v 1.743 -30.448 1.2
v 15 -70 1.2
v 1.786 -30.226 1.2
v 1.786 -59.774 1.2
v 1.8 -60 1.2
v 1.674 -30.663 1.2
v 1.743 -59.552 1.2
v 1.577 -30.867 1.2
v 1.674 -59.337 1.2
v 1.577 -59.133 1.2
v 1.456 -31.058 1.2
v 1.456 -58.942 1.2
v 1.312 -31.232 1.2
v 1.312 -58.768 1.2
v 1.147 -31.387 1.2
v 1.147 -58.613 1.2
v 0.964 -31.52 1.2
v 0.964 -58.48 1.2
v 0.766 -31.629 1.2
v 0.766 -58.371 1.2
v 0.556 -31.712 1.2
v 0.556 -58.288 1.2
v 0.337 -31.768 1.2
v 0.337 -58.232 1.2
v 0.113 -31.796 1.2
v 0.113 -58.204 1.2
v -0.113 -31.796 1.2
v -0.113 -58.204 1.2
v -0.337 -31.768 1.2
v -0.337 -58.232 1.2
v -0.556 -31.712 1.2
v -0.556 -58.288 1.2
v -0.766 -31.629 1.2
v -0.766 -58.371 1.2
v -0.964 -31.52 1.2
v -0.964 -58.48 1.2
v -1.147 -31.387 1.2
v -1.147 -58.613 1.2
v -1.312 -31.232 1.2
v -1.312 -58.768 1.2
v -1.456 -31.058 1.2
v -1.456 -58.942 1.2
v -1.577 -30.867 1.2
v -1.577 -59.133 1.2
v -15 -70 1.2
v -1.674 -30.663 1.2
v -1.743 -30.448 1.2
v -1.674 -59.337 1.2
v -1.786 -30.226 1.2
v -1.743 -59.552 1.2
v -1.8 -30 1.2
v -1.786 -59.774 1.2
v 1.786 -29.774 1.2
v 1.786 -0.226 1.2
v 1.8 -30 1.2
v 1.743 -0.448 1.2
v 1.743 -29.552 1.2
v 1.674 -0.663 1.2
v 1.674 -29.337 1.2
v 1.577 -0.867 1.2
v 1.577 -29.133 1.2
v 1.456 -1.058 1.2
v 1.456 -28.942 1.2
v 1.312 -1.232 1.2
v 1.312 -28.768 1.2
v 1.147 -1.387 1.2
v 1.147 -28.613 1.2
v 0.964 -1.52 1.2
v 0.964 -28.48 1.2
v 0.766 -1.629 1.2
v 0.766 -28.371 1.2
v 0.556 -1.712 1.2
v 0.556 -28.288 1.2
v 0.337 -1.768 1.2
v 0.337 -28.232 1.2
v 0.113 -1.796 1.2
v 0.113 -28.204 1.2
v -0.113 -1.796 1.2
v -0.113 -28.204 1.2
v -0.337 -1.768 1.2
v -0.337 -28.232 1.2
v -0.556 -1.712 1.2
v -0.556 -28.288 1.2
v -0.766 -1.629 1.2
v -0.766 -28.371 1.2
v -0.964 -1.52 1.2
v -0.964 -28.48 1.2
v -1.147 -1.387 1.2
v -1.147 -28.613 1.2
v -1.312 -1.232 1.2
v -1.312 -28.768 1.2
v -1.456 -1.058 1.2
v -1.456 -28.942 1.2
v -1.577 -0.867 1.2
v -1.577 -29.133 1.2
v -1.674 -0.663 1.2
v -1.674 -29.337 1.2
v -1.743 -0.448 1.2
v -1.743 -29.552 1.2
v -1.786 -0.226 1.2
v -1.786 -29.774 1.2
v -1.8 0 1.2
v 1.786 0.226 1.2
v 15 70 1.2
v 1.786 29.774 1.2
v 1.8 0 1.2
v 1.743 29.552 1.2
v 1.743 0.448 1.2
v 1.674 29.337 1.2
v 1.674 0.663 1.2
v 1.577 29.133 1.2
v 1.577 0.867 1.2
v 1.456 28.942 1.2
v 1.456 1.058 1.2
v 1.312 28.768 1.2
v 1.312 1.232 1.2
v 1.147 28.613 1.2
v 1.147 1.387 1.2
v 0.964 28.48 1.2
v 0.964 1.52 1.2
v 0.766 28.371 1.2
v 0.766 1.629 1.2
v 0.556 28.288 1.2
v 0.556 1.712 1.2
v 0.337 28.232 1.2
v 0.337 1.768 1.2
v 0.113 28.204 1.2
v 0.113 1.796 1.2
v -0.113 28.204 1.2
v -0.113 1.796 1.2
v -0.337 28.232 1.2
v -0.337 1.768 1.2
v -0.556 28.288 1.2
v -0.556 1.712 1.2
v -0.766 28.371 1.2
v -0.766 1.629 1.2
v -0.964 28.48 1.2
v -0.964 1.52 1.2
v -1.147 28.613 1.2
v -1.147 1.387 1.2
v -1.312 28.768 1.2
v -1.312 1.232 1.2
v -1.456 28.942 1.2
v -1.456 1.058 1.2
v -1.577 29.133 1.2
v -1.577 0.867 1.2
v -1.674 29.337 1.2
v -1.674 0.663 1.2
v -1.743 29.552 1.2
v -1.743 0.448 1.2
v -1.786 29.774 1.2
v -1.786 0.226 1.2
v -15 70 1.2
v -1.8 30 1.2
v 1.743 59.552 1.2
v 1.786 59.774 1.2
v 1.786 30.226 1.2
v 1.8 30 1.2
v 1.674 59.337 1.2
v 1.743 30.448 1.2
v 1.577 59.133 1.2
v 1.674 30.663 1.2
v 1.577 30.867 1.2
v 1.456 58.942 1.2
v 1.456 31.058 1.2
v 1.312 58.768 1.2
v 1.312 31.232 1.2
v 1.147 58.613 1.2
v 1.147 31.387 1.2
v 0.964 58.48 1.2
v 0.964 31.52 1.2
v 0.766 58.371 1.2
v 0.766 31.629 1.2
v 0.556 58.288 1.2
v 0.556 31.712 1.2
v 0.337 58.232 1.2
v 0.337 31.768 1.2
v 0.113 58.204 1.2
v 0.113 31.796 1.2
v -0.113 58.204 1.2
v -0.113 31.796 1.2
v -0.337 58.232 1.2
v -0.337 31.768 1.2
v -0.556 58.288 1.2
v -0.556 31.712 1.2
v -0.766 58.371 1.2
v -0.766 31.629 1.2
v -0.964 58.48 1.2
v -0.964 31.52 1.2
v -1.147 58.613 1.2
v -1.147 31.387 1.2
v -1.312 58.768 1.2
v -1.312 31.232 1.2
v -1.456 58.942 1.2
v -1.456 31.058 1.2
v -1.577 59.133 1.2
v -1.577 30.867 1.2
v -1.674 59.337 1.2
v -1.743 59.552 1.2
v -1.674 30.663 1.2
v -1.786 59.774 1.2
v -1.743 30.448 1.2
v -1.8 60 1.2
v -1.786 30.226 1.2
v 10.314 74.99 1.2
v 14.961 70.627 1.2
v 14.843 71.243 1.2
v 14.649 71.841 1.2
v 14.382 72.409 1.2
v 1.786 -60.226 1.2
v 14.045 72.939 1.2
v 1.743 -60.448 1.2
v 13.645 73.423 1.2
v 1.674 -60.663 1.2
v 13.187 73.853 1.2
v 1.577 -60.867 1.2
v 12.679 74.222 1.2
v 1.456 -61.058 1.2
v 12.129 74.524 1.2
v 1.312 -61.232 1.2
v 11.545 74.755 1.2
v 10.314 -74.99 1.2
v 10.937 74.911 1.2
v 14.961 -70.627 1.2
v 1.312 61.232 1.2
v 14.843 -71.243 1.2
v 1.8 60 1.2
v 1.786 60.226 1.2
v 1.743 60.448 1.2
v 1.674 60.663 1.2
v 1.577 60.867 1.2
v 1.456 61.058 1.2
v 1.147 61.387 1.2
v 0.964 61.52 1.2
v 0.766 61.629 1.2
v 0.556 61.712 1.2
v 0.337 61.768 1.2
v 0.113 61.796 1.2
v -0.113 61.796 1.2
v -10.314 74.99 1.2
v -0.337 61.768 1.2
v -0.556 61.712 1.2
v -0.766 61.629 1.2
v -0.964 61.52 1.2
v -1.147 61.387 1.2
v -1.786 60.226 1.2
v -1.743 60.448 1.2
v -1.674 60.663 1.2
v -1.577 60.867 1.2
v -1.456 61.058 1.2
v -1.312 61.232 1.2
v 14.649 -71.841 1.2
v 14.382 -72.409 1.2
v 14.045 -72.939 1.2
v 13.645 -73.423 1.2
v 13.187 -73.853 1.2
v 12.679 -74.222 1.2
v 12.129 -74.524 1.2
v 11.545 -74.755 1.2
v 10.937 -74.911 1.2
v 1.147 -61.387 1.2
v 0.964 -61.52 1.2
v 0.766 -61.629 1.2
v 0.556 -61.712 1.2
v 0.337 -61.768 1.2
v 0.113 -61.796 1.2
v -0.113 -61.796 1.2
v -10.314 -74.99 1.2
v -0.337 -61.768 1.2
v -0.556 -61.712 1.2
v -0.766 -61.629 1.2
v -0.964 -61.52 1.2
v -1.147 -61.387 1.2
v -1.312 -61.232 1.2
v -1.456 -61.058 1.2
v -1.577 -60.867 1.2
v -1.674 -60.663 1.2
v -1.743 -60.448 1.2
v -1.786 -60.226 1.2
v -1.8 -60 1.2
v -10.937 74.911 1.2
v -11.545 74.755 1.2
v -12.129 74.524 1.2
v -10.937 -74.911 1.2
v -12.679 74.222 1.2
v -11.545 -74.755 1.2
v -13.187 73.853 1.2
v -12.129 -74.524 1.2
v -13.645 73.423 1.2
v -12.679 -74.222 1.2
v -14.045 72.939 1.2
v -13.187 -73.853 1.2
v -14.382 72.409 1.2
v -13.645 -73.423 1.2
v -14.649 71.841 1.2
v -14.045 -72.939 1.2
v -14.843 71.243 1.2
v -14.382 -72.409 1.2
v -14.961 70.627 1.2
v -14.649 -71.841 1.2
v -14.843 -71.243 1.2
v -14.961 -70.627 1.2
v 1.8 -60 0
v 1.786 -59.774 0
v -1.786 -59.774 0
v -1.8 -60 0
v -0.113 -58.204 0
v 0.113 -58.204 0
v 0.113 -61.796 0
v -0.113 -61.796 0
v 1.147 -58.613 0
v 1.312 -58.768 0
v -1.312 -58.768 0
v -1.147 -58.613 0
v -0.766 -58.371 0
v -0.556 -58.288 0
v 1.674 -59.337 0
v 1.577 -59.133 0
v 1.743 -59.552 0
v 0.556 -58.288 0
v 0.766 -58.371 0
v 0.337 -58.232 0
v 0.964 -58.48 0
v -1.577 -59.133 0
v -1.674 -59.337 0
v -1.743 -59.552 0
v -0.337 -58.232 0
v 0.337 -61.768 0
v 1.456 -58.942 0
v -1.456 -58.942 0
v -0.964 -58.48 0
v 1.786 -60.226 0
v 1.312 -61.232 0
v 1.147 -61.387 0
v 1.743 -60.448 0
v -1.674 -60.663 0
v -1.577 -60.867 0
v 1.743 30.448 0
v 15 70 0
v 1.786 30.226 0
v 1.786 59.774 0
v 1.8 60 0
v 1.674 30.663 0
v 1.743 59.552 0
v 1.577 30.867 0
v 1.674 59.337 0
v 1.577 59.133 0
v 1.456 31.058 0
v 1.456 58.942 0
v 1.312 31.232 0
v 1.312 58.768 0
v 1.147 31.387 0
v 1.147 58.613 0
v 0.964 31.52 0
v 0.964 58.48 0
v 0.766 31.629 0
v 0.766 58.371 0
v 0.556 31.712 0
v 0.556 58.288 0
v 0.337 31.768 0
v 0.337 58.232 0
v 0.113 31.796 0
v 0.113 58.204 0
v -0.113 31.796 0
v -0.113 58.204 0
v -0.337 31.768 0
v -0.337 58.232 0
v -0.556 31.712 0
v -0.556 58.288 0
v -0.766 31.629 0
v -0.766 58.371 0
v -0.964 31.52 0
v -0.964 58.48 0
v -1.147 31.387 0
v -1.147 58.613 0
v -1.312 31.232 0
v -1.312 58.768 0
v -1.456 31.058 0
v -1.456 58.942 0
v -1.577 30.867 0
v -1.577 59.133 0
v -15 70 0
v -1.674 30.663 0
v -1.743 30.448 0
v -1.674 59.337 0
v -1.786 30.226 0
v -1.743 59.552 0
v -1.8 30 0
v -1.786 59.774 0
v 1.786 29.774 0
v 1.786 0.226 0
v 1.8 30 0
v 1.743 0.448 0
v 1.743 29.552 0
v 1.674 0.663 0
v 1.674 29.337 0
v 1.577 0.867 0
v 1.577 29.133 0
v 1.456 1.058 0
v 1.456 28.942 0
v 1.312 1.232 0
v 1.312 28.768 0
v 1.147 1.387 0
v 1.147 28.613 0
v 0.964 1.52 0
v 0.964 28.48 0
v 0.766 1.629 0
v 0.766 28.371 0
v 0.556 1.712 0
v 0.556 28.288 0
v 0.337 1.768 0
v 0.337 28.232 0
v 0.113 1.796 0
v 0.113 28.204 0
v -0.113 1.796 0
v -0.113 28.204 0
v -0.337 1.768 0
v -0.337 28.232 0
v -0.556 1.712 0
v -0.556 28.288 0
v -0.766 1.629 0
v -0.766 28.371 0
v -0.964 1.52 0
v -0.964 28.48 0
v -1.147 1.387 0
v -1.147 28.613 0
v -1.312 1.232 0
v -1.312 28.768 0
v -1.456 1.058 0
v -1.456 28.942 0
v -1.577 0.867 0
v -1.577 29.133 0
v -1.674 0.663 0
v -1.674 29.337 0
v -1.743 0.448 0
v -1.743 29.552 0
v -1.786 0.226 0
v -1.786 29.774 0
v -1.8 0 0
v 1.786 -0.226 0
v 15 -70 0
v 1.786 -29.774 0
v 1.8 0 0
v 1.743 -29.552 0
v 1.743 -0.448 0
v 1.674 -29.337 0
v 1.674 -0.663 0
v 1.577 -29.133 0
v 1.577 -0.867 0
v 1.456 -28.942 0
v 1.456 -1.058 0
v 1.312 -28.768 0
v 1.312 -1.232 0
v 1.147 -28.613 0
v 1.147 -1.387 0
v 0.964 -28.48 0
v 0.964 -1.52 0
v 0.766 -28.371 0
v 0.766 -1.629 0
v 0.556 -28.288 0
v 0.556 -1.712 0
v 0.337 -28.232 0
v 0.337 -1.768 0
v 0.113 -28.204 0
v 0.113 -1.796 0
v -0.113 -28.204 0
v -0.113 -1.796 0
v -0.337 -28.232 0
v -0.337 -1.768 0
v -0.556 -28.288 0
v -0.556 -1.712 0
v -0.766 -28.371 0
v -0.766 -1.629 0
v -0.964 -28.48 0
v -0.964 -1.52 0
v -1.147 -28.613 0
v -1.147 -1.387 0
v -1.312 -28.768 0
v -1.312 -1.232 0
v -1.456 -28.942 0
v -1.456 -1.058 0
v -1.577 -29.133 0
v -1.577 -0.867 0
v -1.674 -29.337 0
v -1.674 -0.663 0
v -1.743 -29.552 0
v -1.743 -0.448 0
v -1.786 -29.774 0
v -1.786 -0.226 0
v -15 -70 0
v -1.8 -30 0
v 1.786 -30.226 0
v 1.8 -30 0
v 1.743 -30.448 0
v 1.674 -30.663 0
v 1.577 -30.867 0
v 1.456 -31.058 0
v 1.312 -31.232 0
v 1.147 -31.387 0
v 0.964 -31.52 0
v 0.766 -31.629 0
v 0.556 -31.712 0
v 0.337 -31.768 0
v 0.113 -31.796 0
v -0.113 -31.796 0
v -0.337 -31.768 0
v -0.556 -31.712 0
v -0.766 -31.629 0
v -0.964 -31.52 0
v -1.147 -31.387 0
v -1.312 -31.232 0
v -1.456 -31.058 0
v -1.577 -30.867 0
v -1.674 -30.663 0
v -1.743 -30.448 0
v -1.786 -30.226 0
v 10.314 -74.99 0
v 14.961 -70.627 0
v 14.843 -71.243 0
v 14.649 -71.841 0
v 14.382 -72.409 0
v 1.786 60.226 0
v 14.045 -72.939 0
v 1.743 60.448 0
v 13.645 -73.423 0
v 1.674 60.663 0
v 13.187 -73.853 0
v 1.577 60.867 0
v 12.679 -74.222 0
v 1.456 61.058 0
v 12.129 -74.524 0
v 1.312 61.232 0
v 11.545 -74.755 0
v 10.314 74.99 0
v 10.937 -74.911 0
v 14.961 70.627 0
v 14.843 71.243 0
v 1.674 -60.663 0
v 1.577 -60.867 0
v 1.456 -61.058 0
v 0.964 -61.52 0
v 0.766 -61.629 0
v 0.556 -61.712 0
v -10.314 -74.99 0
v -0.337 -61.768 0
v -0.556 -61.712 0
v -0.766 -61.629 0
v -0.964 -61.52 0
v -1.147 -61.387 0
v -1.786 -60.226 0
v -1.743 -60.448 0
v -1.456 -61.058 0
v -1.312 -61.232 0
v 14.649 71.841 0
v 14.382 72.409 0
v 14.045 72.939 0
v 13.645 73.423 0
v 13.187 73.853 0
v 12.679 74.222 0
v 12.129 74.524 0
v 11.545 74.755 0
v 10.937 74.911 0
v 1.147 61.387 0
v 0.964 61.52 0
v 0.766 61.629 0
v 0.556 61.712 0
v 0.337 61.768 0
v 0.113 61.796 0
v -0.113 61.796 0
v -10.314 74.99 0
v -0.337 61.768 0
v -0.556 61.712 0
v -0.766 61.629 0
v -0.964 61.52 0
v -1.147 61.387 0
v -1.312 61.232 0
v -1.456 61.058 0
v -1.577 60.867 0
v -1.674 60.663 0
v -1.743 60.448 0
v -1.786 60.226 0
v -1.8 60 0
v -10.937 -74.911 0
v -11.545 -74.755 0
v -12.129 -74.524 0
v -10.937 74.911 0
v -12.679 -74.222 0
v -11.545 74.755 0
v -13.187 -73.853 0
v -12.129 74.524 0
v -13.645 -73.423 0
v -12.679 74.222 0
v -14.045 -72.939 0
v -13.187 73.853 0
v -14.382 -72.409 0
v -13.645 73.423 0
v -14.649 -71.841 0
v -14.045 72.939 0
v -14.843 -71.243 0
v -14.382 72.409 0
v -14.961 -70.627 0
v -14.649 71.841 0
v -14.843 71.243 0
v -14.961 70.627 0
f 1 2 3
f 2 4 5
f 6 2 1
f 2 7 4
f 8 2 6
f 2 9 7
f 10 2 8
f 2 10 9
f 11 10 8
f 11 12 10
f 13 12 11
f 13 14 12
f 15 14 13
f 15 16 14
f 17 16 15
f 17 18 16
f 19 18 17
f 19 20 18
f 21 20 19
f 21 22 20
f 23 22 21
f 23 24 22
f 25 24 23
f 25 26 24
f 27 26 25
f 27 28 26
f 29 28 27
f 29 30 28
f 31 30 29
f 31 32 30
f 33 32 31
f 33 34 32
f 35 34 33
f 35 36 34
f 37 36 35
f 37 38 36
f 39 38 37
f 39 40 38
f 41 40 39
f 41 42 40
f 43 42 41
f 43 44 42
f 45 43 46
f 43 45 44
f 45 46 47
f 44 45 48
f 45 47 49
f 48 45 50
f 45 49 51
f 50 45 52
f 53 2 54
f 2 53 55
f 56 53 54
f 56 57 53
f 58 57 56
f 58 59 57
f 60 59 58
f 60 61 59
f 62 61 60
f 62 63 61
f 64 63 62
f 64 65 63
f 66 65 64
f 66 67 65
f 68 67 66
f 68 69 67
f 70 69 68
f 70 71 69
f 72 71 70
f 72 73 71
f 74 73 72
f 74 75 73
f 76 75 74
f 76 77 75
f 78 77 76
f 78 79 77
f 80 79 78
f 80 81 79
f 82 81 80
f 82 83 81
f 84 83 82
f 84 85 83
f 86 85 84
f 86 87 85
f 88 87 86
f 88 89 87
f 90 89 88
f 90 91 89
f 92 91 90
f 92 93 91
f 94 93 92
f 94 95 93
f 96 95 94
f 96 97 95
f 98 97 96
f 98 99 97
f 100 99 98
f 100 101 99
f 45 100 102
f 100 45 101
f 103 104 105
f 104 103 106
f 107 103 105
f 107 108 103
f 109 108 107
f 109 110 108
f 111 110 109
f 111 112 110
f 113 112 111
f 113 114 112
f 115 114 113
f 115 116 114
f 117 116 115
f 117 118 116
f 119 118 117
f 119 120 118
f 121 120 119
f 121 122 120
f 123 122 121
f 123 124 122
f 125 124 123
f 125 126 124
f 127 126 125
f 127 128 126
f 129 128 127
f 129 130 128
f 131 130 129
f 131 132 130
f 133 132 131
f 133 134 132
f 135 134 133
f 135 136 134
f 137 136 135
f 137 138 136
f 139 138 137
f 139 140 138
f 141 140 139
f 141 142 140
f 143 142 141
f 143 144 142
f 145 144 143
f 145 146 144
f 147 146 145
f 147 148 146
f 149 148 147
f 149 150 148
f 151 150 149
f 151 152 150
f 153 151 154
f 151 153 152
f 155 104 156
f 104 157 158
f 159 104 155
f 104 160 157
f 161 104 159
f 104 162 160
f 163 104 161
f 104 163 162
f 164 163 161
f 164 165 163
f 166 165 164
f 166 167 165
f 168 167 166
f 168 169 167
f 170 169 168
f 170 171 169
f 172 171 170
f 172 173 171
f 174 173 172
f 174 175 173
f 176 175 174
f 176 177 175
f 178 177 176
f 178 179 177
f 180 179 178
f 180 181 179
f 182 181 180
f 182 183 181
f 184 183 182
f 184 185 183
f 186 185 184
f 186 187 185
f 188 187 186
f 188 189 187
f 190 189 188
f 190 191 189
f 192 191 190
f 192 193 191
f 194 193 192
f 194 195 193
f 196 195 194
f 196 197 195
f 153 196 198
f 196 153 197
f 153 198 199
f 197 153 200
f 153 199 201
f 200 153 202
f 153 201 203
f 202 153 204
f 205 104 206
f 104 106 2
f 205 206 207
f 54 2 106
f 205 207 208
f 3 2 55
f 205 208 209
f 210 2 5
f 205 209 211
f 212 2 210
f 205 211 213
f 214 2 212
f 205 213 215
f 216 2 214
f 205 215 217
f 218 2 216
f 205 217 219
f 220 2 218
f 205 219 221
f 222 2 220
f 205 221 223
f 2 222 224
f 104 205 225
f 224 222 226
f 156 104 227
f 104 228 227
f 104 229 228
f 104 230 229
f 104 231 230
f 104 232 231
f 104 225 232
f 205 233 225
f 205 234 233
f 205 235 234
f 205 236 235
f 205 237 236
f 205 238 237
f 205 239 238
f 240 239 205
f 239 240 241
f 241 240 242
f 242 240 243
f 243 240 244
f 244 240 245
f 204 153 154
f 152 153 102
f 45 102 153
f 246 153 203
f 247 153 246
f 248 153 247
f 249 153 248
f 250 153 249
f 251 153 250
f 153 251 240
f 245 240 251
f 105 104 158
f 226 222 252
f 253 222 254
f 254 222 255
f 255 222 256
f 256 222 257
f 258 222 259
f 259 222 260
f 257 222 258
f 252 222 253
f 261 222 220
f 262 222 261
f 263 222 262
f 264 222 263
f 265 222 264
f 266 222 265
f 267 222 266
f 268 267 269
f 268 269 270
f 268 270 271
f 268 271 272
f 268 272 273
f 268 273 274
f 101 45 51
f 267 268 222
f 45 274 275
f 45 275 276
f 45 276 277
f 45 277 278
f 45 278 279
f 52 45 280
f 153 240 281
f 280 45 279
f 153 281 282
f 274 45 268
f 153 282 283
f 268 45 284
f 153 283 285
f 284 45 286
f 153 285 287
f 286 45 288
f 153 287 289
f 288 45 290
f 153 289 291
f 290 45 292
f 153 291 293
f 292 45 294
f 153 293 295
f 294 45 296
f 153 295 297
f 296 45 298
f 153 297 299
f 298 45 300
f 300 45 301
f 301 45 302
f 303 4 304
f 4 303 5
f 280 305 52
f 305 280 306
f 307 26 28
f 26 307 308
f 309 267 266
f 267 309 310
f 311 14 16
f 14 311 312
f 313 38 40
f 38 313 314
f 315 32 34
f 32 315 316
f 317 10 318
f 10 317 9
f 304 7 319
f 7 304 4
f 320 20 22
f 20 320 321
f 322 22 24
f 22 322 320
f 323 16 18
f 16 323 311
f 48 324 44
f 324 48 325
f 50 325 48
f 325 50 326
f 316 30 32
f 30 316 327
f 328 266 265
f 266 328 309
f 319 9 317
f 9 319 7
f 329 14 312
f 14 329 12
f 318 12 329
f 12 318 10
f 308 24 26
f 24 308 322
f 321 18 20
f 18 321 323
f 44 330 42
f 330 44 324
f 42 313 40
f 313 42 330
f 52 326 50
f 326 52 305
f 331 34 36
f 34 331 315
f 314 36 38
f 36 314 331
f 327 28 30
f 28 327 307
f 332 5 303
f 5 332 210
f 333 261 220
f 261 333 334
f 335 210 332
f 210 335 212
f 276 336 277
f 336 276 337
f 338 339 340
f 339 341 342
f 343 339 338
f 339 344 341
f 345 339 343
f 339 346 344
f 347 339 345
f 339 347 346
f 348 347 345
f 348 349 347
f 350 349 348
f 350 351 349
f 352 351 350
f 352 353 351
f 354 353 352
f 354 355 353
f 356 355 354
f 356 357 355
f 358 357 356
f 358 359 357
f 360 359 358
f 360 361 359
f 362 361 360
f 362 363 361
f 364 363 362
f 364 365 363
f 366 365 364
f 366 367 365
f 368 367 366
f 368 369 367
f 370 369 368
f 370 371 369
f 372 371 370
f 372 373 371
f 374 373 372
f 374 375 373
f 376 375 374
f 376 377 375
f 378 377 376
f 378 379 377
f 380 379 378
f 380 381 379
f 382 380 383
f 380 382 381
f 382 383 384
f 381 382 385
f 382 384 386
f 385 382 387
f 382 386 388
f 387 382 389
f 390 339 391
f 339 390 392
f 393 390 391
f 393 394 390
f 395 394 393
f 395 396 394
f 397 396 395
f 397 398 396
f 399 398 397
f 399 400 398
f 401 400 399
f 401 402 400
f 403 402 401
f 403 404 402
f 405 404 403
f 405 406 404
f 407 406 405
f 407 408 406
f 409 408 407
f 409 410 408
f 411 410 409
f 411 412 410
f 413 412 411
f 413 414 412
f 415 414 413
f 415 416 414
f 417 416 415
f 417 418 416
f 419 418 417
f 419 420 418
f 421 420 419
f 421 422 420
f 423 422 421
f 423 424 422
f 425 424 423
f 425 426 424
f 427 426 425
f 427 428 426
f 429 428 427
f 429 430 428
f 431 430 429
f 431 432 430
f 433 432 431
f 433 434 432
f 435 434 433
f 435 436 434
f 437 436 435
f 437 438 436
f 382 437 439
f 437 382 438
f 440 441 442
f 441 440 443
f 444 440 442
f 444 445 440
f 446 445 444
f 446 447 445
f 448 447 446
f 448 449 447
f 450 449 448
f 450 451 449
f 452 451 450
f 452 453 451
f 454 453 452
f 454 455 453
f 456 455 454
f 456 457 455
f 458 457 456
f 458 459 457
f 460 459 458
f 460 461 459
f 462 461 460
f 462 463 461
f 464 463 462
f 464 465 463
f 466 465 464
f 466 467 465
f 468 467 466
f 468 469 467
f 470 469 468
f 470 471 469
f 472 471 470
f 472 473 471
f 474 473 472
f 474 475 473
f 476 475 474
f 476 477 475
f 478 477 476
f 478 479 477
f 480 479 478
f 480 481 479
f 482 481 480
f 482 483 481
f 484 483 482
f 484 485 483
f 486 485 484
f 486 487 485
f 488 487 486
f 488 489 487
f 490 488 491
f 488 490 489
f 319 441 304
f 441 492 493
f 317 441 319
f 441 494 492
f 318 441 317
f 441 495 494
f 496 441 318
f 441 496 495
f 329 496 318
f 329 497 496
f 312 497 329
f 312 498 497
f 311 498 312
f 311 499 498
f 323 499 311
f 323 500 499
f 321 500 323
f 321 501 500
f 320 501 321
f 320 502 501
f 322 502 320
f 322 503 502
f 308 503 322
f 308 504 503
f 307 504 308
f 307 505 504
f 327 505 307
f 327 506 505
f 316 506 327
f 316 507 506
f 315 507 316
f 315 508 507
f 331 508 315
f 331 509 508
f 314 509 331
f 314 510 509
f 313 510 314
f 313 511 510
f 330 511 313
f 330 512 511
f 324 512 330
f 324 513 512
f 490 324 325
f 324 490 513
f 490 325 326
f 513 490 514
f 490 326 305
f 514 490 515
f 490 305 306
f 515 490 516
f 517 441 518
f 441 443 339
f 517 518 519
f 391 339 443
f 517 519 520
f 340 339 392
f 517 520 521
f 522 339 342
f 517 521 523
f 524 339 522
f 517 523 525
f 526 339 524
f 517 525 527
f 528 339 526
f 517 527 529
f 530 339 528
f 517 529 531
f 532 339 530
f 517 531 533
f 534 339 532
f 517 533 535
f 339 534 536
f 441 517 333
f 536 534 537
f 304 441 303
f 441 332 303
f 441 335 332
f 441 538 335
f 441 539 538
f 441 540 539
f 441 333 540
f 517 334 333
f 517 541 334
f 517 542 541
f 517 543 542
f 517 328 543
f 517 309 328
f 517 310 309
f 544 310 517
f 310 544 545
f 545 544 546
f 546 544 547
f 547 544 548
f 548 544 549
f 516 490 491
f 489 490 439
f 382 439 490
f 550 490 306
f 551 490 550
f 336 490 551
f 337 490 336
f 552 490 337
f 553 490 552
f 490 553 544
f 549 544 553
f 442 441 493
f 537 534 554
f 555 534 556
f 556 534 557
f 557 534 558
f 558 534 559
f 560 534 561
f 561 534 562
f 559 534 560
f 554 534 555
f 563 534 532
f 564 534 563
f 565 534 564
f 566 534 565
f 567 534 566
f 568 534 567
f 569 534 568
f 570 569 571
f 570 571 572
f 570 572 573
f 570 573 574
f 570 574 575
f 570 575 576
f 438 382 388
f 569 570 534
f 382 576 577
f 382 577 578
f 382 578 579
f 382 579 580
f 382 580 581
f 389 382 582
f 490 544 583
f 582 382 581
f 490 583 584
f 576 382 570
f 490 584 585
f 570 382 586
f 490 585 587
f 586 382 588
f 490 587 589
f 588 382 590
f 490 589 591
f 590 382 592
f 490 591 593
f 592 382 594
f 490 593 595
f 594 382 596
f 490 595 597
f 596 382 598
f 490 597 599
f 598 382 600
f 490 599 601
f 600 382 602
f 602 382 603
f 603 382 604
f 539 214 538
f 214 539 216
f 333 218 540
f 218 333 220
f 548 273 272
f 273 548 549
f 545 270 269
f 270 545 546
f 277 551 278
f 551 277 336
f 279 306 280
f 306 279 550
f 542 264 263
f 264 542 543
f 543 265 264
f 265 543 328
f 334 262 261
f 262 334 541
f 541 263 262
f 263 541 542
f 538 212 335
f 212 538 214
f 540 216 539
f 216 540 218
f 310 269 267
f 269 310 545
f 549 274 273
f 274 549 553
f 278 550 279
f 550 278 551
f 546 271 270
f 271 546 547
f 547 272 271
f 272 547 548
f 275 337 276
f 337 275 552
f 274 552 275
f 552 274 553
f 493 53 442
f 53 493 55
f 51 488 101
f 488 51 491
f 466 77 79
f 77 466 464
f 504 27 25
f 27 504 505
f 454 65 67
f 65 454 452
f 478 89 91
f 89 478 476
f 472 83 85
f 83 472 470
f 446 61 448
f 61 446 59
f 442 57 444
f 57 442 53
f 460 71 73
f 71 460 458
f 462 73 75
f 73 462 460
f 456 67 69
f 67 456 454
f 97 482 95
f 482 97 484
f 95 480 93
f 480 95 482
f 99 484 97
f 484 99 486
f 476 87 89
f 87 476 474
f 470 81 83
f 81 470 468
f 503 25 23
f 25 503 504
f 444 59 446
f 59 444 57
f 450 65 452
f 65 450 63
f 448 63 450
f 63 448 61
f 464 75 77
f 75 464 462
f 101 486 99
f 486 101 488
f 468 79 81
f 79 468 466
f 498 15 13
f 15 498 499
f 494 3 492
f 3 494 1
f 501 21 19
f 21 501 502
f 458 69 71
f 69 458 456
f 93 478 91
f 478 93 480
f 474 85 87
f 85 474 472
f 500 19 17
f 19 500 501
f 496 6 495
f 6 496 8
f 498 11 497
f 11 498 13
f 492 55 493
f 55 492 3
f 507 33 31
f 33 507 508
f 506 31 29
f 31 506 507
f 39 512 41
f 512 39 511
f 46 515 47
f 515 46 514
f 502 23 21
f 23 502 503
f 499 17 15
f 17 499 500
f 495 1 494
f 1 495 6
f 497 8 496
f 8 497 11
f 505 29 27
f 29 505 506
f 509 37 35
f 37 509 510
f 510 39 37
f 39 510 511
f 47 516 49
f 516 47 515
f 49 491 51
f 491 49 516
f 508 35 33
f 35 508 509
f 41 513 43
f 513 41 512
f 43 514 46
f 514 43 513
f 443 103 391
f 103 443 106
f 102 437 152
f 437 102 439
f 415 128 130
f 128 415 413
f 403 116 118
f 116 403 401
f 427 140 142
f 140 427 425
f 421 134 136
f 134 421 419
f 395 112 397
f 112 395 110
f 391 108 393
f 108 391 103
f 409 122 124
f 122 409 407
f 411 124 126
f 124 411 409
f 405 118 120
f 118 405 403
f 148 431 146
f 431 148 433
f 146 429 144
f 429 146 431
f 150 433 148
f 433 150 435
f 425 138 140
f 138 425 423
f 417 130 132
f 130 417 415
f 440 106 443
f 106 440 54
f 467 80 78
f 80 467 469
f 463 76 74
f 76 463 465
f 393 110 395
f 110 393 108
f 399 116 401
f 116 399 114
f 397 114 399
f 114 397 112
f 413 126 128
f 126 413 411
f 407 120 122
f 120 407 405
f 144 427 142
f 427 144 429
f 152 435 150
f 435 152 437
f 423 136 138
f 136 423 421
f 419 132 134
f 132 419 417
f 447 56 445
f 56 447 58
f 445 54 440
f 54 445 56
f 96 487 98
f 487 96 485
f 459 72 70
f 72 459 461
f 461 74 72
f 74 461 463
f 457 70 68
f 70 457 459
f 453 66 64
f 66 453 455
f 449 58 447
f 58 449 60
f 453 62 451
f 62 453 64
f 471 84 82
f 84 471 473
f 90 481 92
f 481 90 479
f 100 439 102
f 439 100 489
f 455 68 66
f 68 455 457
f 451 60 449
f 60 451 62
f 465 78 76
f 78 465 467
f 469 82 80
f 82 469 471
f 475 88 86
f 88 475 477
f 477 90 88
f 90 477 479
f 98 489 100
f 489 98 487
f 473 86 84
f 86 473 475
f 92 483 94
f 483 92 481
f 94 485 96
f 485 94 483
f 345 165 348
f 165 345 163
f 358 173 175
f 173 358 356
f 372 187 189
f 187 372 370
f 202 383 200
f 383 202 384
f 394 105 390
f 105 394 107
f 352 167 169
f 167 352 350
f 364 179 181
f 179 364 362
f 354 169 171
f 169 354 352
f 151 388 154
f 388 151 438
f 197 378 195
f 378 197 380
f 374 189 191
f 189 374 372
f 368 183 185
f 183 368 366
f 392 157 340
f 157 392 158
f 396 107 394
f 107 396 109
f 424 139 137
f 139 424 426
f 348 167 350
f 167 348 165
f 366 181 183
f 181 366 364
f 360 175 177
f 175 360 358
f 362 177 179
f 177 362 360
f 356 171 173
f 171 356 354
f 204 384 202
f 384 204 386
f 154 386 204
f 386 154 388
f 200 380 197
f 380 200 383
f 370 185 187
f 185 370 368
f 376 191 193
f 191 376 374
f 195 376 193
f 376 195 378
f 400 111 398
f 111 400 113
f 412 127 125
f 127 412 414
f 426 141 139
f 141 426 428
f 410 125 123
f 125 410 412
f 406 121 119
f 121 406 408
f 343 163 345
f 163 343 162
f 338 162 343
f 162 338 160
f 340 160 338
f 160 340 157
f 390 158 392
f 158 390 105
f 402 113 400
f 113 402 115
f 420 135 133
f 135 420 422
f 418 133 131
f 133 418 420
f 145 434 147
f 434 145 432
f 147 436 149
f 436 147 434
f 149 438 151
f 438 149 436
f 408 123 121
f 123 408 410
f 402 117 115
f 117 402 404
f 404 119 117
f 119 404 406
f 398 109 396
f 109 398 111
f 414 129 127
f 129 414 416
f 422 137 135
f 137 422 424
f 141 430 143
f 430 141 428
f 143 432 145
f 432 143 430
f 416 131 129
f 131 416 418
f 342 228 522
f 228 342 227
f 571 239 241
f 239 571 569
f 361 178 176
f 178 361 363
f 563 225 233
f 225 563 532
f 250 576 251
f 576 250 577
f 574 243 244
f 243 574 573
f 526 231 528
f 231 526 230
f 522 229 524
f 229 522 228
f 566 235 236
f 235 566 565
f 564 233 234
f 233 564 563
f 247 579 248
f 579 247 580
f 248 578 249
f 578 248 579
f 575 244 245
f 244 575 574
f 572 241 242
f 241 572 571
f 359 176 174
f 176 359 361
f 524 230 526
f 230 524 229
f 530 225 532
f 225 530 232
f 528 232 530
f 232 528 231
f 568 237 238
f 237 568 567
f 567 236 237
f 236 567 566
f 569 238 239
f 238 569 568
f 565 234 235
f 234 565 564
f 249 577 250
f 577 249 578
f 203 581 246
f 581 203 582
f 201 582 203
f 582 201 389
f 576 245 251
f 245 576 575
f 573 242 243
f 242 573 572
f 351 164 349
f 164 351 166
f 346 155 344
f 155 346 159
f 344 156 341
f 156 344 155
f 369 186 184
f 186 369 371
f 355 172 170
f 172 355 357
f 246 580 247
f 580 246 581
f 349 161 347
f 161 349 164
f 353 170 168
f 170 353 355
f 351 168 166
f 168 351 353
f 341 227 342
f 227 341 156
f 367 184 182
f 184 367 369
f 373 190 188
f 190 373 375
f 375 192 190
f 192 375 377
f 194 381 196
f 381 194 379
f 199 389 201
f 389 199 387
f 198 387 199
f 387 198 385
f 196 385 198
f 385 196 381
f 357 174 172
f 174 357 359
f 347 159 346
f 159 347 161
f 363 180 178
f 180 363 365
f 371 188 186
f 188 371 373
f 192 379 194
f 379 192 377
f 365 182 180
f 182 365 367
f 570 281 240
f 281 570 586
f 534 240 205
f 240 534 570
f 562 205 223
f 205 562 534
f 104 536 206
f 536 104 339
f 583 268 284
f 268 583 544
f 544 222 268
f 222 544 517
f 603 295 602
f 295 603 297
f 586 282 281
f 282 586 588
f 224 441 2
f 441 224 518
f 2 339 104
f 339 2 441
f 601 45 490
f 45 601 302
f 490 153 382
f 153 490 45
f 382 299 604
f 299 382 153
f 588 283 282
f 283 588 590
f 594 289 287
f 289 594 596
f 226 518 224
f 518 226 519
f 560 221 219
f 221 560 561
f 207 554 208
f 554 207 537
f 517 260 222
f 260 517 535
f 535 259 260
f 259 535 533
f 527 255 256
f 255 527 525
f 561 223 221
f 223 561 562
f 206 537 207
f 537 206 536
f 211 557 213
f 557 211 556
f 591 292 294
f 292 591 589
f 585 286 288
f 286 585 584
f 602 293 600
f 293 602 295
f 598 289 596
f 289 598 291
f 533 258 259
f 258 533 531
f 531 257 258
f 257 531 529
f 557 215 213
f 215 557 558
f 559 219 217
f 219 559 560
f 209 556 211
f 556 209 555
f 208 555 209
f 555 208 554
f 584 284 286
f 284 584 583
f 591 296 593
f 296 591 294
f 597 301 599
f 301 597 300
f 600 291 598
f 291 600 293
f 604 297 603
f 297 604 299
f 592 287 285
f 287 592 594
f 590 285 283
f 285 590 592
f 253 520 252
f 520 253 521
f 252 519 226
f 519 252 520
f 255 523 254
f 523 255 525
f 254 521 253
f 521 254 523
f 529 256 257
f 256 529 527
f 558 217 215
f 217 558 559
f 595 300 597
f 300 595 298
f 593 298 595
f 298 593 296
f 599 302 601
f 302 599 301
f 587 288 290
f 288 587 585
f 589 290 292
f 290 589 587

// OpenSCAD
$fn = 50;


difference() {
	union() {
		hull() {
			translate(v = [-10.0000000000, 70.0000000000, 0]) {
				cylinder(h = 99, r = 5);
			}
			translate(v = [10.0000000000, 70.0000000000, 0]) {
				cylinder(h = 99, r = 5);
			}
			translate(v = [-10.0000000000, -70.0000000000, 0]) {
				cylinder(h = 99, r = 5);
			}
			translate(v = [10.0000000000, -70.0000000000, 0]) {
				cylinder(h = 99, r = 5);
			}
		}
	}
	union() {
		translate(v = [0, 0, 1.2000000000]) {
			hull() {
				translate(v = [-10.0000000000, 70.0000000000, 0]) {
					cylinder(h = 97.8000000000, r = 3.8000000000);
				}
				translate(v = [10.0000000000, 70.0000000000, 0]) {
					cylinder(h = 97.8000000000, r = 3.8000000000);
				}
				translate(v = [-10.0000000000, -70.0000000000, 0]) {
					cylinder(h = 97.8000000000, r = 3.8000000000);
				}
				translate(v = [10.0000000000, -70.0000000000, 0]) {
					cylinder(h = 97.8000000000, r = 3.8000000000);
				}
			}
		}
		#translate(v = [0.0000000000, -60.0000000000, 0]) {
			cylinder(h = 1.2000000000, r = 1.8000000000);
		}
		#translate(v = [0.0000000000, -30.0000000000, 0]) {
			cylinder(h = 1.2000000000, r = 1.8000000000);
		}
		#cylinder(h = 1.2000000000, r = 1.8000000000);
		#translate(v = [0.0000000000, 30.0000000000, 0]) {
			cylinder(h = 1.2000000000, r = 1.8000000000);
		}
		#translate(v = [0.0000000000, 60.0000000000, 0]) {
			cylinder(h = 1.2000000000, r = 1.8000000000);
		}
		translate(v = [-250.0000000000, -250.0000000000, 1.2000000000]) {
			cube(size = [500, 500, 500]);
		}
		translate(v = [-250.0000000000, -250.0000000000, 1.2000000000]) {
			cube(size = [500, 500, 500]);
		}
		translate(v = [-250.0000000000, -250.0000000000, 1.2000000000]) {
			cube(size = [500, 500, 500]);
		}
	}
}
